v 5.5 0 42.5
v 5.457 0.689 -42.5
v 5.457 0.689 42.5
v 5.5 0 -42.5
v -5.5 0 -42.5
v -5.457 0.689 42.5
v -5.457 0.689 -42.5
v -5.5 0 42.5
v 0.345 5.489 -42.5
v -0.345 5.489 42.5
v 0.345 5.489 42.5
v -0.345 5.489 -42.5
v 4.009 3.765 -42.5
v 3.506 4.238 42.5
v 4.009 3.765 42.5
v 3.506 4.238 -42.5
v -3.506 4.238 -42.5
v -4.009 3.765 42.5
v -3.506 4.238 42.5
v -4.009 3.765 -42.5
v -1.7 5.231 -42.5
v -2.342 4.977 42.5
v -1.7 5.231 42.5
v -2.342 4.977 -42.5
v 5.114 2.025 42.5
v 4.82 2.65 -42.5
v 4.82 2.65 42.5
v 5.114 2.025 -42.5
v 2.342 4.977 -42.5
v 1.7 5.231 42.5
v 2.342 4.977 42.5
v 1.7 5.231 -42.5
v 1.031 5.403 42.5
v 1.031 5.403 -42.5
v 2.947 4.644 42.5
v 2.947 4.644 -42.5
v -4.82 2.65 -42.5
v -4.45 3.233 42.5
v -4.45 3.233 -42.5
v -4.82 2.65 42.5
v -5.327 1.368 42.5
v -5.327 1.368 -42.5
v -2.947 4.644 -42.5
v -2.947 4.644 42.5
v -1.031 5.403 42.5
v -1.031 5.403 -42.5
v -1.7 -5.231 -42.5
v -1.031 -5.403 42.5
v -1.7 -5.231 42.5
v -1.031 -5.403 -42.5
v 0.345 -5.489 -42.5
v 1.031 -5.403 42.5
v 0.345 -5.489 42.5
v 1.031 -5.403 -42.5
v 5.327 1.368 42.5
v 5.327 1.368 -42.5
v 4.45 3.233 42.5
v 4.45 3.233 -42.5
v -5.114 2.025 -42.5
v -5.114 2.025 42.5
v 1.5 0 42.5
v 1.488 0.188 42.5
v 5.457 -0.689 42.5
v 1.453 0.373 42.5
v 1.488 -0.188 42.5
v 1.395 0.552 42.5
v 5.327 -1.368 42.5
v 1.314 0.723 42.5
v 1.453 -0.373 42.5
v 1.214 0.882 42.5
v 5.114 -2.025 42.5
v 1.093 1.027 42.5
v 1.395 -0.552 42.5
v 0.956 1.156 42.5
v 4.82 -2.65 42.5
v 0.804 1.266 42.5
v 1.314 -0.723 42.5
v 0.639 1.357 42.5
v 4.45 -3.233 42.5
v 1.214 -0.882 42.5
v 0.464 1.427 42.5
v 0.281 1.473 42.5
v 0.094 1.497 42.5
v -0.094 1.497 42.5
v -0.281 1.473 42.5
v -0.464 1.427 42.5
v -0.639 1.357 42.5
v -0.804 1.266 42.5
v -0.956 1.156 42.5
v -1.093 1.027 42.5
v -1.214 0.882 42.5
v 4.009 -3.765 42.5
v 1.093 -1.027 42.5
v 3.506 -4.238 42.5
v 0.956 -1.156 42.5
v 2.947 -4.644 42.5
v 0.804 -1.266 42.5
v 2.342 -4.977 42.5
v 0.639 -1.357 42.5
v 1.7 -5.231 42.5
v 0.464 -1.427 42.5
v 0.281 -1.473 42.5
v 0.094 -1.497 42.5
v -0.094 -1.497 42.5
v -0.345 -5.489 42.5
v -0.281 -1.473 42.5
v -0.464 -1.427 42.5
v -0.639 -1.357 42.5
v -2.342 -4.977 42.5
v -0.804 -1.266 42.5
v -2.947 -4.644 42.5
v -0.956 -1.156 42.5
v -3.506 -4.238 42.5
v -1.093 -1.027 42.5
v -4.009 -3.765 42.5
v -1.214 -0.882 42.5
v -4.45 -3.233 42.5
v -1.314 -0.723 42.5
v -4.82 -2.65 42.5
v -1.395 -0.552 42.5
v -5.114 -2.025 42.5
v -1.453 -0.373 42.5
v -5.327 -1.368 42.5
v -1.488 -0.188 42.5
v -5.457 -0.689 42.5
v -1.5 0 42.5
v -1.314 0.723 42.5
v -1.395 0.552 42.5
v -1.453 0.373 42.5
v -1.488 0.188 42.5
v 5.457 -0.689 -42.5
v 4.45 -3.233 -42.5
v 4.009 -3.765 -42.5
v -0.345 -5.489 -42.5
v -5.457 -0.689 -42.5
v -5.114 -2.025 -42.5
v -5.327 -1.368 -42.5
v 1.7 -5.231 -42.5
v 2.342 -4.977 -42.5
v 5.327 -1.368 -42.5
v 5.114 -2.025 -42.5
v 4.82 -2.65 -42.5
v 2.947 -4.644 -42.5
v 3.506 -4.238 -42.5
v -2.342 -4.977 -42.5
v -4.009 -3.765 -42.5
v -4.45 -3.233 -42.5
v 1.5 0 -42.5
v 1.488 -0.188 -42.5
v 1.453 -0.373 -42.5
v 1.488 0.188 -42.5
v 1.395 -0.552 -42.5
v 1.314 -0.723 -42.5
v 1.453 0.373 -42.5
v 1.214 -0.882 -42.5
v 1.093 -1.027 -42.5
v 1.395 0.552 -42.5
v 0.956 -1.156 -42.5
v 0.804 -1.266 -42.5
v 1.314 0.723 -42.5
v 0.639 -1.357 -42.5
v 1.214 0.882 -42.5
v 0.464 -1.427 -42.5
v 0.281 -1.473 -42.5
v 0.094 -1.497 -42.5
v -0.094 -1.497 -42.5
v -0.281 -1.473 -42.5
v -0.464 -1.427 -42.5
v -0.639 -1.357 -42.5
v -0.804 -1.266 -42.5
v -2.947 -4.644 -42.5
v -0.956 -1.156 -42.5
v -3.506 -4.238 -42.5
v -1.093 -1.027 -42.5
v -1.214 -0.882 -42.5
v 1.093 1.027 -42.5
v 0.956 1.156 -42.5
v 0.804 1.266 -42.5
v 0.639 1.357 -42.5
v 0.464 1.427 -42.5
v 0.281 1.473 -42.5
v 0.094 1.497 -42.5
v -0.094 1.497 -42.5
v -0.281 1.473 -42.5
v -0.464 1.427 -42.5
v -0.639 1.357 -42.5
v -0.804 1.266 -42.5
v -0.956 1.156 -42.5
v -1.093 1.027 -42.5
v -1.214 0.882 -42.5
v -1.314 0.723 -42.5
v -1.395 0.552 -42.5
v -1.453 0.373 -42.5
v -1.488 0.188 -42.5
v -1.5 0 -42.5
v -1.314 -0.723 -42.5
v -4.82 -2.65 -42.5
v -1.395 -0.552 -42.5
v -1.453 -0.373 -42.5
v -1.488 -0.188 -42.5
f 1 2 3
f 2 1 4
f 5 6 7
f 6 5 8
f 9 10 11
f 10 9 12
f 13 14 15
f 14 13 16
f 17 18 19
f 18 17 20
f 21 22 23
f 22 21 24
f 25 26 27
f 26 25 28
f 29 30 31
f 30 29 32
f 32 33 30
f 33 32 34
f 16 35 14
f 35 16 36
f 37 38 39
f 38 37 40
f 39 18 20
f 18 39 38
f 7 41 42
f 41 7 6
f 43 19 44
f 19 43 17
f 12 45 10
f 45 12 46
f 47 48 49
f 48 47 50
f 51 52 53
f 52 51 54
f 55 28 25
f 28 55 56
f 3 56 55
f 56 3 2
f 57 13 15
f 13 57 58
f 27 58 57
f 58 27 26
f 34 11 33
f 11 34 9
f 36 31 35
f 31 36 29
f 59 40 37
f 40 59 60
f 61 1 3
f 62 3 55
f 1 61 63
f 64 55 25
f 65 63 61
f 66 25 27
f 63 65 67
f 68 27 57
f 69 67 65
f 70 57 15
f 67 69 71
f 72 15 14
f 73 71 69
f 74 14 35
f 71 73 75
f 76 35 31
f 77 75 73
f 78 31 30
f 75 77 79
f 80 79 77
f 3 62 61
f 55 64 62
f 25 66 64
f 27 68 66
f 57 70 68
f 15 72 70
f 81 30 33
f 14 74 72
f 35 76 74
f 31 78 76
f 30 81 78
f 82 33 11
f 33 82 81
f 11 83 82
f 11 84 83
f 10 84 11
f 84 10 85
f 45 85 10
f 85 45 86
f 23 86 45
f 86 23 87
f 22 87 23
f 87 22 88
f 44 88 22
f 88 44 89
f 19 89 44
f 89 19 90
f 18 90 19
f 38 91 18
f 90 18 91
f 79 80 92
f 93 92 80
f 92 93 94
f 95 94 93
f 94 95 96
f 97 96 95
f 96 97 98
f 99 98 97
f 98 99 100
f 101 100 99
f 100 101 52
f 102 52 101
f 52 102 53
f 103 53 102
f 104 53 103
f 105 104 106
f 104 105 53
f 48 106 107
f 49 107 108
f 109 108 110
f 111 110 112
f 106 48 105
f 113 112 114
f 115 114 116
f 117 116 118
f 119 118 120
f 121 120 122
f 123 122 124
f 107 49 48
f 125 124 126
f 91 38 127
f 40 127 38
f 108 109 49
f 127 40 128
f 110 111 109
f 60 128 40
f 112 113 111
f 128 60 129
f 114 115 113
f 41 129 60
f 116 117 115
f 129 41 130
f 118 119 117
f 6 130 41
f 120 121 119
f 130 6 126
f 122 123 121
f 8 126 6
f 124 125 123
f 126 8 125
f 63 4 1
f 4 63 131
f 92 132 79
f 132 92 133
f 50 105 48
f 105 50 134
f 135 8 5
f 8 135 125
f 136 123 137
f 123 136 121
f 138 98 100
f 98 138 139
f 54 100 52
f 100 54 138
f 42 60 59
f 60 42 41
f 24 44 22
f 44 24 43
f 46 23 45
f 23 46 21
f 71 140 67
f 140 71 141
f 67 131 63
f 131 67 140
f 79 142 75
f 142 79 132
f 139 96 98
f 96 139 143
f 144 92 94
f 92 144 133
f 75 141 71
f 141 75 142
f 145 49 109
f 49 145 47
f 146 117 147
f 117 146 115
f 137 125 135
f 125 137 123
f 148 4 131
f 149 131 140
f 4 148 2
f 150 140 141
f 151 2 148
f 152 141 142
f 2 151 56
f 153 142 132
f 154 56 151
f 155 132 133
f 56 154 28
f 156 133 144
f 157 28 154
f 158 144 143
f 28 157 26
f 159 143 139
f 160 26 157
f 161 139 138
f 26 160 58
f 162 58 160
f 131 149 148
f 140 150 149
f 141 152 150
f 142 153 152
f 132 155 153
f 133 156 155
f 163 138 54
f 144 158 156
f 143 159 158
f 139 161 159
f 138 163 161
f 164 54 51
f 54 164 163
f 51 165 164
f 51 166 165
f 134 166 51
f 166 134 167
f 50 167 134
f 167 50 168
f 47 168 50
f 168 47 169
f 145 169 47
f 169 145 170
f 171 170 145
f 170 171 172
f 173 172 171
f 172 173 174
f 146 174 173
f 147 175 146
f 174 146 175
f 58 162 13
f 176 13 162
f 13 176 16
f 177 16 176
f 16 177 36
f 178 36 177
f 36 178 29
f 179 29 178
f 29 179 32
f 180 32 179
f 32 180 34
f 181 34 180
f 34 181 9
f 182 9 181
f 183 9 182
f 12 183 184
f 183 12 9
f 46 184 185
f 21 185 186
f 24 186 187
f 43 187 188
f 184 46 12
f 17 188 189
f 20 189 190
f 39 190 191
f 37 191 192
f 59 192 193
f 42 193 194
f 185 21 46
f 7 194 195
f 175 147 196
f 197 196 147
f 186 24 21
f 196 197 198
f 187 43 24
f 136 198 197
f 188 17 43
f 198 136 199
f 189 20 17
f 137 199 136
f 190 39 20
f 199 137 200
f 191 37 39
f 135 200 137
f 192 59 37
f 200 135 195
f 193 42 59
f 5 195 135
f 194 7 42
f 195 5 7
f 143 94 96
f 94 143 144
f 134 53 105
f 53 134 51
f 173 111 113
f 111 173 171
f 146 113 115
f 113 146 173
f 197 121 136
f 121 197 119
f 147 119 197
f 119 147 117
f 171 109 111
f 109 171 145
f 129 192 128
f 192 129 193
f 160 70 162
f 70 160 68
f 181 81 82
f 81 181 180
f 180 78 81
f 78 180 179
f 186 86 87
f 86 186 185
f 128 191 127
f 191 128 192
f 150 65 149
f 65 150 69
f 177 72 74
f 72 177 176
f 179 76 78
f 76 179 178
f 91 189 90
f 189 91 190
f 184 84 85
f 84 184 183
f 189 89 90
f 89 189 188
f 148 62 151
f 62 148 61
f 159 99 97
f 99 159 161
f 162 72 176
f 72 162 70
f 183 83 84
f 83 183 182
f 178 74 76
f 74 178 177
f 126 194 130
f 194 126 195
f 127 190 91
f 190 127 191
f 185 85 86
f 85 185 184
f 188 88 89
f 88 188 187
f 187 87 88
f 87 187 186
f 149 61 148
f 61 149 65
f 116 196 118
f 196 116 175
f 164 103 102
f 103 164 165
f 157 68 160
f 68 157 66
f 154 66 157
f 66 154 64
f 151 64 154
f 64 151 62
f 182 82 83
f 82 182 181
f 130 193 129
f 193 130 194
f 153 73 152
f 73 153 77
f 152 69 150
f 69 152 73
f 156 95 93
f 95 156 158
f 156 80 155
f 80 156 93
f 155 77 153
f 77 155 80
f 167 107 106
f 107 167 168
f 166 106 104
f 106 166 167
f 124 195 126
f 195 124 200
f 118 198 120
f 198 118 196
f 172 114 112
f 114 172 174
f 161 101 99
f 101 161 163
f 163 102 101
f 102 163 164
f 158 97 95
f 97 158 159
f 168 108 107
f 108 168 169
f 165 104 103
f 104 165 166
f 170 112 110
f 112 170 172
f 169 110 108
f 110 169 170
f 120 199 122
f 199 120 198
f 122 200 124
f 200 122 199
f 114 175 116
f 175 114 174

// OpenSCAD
$fn = 50;


difference() {
	union() {
		translate(v = [0, 0, -42.5000000000]) {
			cylinder(h = 85, r = 5.5000000000);
		}
	}
	union() {
		translate(v = [0, 0, -100.0000000000]) {
			cylinder(h = 200, r = 1.5000000000);
		}
	}
}
